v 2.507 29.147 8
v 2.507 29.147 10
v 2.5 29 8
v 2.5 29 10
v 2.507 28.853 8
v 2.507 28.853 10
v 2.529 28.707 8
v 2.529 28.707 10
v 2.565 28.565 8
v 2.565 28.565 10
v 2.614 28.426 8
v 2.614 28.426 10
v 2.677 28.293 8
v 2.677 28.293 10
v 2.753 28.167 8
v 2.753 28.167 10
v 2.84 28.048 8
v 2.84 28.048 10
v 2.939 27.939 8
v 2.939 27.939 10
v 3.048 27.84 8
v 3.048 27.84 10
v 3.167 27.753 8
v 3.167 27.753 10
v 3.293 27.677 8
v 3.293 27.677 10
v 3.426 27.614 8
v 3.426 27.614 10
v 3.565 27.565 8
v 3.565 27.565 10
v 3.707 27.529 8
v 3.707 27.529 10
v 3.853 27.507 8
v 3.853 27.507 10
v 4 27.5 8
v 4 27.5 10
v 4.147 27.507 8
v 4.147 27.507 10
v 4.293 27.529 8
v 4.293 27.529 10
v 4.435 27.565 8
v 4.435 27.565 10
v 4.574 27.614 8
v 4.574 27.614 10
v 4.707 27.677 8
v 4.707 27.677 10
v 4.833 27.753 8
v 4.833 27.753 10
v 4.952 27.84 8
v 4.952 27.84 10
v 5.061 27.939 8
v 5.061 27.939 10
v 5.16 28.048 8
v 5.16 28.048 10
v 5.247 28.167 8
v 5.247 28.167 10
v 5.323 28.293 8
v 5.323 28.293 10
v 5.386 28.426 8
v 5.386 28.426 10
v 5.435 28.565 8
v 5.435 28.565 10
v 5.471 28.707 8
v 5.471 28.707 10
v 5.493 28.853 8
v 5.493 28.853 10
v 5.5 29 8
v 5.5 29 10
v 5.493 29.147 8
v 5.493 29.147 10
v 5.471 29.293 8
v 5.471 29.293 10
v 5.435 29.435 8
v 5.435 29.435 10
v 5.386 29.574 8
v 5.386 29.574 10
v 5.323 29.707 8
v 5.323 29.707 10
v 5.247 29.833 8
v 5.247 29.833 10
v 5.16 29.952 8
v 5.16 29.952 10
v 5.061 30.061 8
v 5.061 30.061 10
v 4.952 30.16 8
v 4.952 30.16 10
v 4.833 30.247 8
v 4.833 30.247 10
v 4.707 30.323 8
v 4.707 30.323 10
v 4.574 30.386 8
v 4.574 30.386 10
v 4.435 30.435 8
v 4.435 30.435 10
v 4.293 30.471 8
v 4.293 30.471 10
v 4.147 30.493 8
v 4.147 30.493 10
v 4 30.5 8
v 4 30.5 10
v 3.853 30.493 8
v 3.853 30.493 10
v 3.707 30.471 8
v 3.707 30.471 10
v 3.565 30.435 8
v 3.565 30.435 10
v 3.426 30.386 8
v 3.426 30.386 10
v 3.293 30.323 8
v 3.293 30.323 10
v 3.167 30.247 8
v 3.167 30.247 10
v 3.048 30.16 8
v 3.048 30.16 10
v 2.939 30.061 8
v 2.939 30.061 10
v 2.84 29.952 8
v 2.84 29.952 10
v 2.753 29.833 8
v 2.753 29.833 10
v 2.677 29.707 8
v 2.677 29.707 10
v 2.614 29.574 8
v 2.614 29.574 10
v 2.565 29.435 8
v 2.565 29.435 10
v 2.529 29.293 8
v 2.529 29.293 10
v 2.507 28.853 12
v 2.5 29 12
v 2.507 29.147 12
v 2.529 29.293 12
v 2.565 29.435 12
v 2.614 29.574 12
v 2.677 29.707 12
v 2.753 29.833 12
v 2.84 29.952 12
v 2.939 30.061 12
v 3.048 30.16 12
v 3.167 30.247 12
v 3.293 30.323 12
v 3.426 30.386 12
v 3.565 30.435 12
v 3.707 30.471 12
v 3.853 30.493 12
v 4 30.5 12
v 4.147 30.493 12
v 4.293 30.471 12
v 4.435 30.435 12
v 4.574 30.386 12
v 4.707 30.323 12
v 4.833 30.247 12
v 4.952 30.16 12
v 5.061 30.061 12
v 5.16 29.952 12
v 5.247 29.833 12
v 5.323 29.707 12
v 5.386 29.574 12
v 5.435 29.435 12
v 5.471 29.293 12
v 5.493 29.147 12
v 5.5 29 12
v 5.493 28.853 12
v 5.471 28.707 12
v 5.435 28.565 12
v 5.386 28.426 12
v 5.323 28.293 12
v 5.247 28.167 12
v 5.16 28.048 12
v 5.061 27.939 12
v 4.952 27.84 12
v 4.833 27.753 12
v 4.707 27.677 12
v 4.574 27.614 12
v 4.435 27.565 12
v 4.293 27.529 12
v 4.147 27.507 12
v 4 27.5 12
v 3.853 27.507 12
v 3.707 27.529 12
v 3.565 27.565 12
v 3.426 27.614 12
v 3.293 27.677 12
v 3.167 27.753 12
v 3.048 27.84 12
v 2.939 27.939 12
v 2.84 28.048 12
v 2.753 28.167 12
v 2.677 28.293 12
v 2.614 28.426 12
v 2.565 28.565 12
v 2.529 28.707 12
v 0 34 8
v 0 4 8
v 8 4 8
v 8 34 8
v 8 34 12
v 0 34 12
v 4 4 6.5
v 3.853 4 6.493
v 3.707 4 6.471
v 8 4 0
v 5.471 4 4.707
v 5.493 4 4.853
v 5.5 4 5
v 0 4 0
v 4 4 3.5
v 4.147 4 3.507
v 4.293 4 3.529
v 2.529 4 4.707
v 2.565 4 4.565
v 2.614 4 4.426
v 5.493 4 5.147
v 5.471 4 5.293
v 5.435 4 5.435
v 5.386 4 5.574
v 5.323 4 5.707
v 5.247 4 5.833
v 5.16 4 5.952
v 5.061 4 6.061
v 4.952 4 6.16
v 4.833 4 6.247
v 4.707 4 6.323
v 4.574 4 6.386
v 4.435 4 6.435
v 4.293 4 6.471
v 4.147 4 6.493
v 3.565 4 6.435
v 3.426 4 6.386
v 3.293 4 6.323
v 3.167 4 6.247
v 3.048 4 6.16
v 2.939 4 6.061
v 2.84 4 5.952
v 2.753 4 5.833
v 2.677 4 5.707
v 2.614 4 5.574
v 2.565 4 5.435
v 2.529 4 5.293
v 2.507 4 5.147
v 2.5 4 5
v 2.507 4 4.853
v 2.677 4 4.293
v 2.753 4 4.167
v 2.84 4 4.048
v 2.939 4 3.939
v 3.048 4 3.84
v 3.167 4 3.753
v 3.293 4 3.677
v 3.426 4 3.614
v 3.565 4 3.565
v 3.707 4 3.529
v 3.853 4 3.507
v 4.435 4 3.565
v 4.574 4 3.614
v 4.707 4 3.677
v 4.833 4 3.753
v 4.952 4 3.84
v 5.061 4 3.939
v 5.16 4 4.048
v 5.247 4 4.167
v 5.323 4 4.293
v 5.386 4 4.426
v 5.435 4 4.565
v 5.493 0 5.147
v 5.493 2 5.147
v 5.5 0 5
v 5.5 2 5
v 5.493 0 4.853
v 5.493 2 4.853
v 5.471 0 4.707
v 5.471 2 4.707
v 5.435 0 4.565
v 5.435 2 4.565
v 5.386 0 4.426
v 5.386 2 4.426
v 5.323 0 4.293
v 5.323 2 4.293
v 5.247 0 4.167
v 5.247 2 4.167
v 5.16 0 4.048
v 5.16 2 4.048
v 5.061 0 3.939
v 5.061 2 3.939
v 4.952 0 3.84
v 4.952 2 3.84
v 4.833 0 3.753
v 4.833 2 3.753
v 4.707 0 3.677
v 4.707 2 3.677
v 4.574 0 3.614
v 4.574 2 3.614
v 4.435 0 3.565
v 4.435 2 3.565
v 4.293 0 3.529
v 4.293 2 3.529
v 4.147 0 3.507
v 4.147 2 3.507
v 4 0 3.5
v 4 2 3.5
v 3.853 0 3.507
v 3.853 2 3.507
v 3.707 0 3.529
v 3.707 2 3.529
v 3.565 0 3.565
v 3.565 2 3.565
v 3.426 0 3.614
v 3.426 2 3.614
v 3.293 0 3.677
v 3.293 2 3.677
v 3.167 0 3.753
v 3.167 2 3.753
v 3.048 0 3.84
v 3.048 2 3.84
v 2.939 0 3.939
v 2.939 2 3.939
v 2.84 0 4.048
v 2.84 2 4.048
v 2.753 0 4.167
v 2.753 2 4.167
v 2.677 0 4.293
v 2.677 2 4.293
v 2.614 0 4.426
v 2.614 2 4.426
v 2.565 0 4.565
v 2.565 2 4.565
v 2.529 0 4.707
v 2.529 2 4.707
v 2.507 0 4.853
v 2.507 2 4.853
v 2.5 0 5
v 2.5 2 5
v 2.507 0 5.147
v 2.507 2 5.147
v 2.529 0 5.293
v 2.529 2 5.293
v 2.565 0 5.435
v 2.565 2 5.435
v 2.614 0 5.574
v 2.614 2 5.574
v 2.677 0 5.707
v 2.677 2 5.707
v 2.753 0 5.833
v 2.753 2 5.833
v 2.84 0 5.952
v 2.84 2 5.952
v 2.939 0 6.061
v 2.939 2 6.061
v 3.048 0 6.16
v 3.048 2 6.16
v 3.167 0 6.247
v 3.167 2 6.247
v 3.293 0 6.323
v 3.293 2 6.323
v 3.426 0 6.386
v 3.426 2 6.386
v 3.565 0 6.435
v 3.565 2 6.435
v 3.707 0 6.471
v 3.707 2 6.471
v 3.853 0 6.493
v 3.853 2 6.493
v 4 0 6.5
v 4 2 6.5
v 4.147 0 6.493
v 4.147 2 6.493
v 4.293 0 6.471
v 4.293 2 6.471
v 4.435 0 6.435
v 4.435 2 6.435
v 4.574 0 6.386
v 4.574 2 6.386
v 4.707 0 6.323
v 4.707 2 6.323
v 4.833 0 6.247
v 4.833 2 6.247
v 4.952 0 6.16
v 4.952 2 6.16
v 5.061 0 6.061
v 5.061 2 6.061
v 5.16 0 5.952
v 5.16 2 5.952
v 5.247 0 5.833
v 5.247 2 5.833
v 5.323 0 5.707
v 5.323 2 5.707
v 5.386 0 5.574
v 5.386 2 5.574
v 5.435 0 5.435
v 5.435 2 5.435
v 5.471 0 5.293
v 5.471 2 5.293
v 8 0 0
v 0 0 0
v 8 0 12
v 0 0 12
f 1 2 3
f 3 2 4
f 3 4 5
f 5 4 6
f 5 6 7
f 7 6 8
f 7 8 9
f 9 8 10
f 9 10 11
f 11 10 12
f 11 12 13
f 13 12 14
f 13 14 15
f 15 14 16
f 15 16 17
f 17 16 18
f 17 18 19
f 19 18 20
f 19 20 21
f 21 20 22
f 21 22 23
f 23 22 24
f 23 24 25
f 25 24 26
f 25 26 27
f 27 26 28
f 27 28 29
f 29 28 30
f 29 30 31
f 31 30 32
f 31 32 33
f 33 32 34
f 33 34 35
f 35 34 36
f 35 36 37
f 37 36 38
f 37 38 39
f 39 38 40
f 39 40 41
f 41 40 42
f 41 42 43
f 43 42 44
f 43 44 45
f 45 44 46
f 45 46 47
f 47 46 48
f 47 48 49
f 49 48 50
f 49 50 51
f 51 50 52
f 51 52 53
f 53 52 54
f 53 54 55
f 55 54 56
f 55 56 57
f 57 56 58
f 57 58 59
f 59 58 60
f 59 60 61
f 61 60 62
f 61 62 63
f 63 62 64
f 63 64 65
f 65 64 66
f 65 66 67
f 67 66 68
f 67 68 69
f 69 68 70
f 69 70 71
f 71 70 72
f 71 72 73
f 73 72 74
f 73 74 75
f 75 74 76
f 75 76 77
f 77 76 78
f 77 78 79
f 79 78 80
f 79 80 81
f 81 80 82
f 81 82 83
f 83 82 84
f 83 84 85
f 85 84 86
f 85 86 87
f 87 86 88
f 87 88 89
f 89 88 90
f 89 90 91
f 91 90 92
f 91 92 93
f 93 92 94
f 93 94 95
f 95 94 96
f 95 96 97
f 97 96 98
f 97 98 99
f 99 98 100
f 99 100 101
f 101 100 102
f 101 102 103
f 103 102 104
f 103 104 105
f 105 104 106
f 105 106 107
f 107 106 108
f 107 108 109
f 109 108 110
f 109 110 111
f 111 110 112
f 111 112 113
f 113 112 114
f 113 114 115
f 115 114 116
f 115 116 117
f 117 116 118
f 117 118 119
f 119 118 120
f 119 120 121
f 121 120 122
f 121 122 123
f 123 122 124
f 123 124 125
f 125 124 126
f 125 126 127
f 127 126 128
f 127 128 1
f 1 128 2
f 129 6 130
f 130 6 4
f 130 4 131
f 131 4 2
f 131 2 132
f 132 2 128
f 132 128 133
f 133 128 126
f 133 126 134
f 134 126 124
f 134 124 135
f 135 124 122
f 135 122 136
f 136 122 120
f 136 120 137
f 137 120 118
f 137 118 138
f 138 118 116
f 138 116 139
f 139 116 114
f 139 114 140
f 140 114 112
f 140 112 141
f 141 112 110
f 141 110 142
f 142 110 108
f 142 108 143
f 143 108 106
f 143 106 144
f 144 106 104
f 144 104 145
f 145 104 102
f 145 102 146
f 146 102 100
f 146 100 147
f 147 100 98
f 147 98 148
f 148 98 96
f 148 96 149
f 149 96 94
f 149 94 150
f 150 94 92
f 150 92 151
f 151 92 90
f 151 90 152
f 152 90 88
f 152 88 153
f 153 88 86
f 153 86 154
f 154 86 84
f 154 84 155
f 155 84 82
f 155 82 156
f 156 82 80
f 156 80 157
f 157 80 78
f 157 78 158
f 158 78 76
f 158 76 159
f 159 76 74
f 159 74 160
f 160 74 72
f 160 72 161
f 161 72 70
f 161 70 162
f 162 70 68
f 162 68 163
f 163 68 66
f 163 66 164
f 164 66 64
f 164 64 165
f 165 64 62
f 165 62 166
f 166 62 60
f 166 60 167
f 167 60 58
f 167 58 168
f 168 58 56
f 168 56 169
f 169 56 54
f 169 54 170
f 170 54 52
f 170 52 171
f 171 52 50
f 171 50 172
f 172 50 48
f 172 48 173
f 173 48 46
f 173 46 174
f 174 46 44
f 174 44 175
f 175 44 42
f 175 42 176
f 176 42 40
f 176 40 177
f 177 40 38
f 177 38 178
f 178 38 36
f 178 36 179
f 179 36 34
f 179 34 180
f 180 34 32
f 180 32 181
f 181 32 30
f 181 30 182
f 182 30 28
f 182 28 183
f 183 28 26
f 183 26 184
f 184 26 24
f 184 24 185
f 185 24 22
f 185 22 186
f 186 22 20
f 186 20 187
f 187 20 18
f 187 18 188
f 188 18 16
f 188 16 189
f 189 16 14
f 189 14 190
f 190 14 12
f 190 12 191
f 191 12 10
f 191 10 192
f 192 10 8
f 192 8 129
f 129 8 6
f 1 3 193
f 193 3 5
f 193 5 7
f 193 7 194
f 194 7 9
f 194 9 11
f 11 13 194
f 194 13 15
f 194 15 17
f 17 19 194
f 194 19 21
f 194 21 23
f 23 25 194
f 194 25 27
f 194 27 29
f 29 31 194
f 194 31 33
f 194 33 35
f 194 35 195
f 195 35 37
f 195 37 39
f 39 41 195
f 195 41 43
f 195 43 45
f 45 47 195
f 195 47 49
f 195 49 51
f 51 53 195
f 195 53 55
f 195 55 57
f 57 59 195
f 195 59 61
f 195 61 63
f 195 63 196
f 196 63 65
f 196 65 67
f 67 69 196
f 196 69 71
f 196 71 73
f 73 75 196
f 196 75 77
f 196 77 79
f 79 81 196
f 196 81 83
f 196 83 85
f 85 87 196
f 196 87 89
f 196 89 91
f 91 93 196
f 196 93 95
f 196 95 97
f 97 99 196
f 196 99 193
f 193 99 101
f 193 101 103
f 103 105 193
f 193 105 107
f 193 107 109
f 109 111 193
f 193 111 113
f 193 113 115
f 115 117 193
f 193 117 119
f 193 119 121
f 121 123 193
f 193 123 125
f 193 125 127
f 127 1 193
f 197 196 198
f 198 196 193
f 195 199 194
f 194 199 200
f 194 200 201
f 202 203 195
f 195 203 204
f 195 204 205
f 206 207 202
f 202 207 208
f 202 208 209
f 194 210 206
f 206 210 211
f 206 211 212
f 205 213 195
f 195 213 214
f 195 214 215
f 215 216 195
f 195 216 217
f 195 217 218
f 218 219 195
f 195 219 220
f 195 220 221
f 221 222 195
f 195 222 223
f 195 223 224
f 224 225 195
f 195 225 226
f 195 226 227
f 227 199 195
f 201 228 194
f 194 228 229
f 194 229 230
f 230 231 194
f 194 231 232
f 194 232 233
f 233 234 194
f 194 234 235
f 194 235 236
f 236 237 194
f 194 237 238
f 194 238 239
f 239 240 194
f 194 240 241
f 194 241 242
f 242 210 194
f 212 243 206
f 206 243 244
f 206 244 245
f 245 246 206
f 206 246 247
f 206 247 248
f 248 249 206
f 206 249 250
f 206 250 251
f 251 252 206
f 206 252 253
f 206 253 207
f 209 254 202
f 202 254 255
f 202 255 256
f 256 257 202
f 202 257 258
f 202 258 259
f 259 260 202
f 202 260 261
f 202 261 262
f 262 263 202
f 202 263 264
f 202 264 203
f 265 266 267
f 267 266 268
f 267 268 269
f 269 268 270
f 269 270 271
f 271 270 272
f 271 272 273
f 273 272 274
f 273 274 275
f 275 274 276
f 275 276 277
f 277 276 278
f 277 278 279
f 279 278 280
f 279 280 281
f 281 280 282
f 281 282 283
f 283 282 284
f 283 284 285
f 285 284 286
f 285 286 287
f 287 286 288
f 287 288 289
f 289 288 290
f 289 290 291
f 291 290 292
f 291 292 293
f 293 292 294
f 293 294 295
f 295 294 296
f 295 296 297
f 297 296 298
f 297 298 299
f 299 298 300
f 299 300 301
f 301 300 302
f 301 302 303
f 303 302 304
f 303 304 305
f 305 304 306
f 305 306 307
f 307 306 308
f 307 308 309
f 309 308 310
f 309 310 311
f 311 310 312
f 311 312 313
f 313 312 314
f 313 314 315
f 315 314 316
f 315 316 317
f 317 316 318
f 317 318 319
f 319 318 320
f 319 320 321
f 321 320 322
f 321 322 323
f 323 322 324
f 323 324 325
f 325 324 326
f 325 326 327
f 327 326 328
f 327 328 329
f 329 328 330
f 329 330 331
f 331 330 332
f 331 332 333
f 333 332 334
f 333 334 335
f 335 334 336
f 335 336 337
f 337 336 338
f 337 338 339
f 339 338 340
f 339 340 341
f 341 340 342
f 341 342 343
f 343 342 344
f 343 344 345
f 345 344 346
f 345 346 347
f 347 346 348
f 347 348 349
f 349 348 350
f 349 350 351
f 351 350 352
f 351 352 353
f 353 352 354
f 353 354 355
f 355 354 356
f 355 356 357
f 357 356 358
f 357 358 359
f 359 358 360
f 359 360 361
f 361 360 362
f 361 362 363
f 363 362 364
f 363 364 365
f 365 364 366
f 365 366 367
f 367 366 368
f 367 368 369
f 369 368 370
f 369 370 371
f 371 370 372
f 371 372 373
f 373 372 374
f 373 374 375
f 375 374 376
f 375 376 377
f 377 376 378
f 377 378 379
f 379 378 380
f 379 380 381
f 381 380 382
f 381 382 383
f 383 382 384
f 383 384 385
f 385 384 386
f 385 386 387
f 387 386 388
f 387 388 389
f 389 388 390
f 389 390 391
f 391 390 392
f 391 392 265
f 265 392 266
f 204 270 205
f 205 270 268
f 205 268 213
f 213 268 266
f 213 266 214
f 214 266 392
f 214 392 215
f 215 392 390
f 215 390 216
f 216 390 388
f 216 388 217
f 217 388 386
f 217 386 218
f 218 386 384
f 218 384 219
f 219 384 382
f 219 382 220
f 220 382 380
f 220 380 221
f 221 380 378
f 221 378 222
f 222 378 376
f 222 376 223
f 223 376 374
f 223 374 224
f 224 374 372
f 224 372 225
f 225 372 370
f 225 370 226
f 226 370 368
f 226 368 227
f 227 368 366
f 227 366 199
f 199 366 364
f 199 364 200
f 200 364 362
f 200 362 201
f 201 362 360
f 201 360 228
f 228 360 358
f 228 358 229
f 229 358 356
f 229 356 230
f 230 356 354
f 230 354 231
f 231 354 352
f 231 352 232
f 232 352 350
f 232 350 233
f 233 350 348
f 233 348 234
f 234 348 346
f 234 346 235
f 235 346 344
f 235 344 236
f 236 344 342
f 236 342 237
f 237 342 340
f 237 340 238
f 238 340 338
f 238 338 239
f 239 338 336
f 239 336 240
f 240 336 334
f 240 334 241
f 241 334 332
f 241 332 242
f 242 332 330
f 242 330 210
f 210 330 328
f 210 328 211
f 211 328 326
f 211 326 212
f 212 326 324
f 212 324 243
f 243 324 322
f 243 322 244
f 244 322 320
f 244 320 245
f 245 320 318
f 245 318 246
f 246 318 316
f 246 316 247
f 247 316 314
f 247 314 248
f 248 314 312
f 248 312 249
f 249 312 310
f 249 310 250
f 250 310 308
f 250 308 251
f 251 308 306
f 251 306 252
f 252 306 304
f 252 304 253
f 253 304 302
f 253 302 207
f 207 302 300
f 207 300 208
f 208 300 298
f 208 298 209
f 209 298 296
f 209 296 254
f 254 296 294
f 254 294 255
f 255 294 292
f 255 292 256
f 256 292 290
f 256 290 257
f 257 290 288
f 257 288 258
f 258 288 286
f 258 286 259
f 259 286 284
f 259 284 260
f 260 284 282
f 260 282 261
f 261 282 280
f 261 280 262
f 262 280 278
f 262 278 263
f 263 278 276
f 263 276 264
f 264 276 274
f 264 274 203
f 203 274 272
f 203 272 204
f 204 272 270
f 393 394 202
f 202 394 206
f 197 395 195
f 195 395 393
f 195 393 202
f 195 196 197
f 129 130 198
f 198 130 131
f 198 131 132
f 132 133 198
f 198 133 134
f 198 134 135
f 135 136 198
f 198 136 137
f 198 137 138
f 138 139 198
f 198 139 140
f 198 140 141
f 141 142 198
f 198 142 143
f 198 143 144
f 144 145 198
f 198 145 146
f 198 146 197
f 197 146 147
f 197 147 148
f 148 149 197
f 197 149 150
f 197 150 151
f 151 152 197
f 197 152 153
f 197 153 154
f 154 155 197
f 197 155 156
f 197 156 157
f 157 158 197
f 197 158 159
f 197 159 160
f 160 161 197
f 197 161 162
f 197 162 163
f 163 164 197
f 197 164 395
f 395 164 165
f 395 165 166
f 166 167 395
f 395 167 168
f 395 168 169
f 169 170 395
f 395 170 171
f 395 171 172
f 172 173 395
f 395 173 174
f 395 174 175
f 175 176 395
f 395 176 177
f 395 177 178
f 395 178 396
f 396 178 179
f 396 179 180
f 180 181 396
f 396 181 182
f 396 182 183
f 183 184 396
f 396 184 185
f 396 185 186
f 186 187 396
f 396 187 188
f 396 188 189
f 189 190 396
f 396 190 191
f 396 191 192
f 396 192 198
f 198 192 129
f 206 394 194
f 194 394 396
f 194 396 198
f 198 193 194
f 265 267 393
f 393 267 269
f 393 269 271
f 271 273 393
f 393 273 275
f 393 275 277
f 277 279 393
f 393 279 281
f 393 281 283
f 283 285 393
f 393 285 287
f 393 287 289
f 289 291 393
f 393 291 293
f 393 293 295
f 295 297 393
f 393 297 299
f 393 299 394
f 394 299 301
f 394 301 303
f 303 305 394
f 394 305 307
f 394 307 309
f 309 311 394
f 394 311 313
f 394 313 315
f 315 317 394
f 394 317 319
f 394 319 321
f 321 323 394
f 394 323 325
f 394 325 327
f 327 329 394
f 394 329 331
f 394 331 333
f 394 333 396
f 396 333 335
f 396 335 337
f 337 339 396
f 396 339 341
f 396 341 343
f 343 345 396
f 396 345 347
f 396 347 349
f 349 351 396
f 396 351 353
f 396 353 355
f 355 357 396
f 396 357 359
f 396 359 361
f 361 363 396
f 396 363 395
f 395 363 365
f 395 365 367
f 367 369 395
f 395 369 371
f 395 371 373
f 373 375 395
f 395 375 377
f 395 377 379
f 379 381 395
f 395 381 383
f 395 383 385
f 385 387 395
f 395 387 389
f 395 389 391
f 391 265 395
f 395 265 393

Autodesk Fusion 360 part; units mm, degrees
sketch "Skizze1" plane through (0, 0, 0) normal (0, 1, 0) x (1, 0, 0)
  line L0 (0, 0) -> (8, 0)
  line L1 (0, 0) -> (0, -12)
  line L2 (8, 0) -> (8, -12)
  line L3 (0, -12) -> (8, -12)
  dimension "d1" = 8
  dimension "d2" = 12
  dimension "d3" = 12
extrude "Extrusion1" add sketch "Skizze1" along normal blind 4
sketch "Skizze2" plane through (0, 4, 0) normal (0, 1, 0) x (-1, 0, 0)
  line L0 (0, 0) -> (0, 12)
  line L1 (0, 12) -> (-8, 12)
  line L2 (-8, 12) -> (-8, 0)
  line L3 (-8, 0) -> (0, 0)
  circle A0 centre (-4, 5) radius 1.5
  dimension "d6" = 3
extrude "Extrusion2" cut sketch "Skizze2" against normal blind 15 contours A0
sketch "Skizze3" plane through (0, 4, 0) normal (0, 1, 0) x (-1, 0, 0)
  circle A0 centre (-4, 5) radius 1.5
  line L0 (0, 0) -> (0, 12)
  line L1 (0, 12) -> (-8, 12)
  line L2 (-8, 12) -> (-8, 0)
  line L3 (-8, 0) -> (0, 0)
  line L4 (0, 12) -> (0, 9)
  line L5 (0, 9) -> (0, 8)
  line L6 (0, 8) -> (-8, 8)
  line L7 (-8, 8) -> (-8, 12)
  line L8 (-8, 12) -> (0, 12)
extrude "Extrusion3" add sketch "Skizze3" along normal blind 30 contours L0 L1 L2 L4 L5 L6 L7 L8
sketch "Skizze4" plane through (0, 0, 12) normal (0, 0, 1) x (1, 0, 0)
  line L0 (0, 0) -> (8, 0)
  line L1 (8, 0) -> (8, 34)
  line L2 (8, 34) -> (0, 34)
  line L3 (0, 34) -> (0, 0)
  line L4 (0, 34) -> (0, 29)
  line L5 (0, 29) -> (4, 29)
  circle A0 centre (4, 29) radius 1.5
  dimension "d11" = 3
extrude "Extrusion4" cut sketch "Skizze4" against normal blind 21 contours A0
